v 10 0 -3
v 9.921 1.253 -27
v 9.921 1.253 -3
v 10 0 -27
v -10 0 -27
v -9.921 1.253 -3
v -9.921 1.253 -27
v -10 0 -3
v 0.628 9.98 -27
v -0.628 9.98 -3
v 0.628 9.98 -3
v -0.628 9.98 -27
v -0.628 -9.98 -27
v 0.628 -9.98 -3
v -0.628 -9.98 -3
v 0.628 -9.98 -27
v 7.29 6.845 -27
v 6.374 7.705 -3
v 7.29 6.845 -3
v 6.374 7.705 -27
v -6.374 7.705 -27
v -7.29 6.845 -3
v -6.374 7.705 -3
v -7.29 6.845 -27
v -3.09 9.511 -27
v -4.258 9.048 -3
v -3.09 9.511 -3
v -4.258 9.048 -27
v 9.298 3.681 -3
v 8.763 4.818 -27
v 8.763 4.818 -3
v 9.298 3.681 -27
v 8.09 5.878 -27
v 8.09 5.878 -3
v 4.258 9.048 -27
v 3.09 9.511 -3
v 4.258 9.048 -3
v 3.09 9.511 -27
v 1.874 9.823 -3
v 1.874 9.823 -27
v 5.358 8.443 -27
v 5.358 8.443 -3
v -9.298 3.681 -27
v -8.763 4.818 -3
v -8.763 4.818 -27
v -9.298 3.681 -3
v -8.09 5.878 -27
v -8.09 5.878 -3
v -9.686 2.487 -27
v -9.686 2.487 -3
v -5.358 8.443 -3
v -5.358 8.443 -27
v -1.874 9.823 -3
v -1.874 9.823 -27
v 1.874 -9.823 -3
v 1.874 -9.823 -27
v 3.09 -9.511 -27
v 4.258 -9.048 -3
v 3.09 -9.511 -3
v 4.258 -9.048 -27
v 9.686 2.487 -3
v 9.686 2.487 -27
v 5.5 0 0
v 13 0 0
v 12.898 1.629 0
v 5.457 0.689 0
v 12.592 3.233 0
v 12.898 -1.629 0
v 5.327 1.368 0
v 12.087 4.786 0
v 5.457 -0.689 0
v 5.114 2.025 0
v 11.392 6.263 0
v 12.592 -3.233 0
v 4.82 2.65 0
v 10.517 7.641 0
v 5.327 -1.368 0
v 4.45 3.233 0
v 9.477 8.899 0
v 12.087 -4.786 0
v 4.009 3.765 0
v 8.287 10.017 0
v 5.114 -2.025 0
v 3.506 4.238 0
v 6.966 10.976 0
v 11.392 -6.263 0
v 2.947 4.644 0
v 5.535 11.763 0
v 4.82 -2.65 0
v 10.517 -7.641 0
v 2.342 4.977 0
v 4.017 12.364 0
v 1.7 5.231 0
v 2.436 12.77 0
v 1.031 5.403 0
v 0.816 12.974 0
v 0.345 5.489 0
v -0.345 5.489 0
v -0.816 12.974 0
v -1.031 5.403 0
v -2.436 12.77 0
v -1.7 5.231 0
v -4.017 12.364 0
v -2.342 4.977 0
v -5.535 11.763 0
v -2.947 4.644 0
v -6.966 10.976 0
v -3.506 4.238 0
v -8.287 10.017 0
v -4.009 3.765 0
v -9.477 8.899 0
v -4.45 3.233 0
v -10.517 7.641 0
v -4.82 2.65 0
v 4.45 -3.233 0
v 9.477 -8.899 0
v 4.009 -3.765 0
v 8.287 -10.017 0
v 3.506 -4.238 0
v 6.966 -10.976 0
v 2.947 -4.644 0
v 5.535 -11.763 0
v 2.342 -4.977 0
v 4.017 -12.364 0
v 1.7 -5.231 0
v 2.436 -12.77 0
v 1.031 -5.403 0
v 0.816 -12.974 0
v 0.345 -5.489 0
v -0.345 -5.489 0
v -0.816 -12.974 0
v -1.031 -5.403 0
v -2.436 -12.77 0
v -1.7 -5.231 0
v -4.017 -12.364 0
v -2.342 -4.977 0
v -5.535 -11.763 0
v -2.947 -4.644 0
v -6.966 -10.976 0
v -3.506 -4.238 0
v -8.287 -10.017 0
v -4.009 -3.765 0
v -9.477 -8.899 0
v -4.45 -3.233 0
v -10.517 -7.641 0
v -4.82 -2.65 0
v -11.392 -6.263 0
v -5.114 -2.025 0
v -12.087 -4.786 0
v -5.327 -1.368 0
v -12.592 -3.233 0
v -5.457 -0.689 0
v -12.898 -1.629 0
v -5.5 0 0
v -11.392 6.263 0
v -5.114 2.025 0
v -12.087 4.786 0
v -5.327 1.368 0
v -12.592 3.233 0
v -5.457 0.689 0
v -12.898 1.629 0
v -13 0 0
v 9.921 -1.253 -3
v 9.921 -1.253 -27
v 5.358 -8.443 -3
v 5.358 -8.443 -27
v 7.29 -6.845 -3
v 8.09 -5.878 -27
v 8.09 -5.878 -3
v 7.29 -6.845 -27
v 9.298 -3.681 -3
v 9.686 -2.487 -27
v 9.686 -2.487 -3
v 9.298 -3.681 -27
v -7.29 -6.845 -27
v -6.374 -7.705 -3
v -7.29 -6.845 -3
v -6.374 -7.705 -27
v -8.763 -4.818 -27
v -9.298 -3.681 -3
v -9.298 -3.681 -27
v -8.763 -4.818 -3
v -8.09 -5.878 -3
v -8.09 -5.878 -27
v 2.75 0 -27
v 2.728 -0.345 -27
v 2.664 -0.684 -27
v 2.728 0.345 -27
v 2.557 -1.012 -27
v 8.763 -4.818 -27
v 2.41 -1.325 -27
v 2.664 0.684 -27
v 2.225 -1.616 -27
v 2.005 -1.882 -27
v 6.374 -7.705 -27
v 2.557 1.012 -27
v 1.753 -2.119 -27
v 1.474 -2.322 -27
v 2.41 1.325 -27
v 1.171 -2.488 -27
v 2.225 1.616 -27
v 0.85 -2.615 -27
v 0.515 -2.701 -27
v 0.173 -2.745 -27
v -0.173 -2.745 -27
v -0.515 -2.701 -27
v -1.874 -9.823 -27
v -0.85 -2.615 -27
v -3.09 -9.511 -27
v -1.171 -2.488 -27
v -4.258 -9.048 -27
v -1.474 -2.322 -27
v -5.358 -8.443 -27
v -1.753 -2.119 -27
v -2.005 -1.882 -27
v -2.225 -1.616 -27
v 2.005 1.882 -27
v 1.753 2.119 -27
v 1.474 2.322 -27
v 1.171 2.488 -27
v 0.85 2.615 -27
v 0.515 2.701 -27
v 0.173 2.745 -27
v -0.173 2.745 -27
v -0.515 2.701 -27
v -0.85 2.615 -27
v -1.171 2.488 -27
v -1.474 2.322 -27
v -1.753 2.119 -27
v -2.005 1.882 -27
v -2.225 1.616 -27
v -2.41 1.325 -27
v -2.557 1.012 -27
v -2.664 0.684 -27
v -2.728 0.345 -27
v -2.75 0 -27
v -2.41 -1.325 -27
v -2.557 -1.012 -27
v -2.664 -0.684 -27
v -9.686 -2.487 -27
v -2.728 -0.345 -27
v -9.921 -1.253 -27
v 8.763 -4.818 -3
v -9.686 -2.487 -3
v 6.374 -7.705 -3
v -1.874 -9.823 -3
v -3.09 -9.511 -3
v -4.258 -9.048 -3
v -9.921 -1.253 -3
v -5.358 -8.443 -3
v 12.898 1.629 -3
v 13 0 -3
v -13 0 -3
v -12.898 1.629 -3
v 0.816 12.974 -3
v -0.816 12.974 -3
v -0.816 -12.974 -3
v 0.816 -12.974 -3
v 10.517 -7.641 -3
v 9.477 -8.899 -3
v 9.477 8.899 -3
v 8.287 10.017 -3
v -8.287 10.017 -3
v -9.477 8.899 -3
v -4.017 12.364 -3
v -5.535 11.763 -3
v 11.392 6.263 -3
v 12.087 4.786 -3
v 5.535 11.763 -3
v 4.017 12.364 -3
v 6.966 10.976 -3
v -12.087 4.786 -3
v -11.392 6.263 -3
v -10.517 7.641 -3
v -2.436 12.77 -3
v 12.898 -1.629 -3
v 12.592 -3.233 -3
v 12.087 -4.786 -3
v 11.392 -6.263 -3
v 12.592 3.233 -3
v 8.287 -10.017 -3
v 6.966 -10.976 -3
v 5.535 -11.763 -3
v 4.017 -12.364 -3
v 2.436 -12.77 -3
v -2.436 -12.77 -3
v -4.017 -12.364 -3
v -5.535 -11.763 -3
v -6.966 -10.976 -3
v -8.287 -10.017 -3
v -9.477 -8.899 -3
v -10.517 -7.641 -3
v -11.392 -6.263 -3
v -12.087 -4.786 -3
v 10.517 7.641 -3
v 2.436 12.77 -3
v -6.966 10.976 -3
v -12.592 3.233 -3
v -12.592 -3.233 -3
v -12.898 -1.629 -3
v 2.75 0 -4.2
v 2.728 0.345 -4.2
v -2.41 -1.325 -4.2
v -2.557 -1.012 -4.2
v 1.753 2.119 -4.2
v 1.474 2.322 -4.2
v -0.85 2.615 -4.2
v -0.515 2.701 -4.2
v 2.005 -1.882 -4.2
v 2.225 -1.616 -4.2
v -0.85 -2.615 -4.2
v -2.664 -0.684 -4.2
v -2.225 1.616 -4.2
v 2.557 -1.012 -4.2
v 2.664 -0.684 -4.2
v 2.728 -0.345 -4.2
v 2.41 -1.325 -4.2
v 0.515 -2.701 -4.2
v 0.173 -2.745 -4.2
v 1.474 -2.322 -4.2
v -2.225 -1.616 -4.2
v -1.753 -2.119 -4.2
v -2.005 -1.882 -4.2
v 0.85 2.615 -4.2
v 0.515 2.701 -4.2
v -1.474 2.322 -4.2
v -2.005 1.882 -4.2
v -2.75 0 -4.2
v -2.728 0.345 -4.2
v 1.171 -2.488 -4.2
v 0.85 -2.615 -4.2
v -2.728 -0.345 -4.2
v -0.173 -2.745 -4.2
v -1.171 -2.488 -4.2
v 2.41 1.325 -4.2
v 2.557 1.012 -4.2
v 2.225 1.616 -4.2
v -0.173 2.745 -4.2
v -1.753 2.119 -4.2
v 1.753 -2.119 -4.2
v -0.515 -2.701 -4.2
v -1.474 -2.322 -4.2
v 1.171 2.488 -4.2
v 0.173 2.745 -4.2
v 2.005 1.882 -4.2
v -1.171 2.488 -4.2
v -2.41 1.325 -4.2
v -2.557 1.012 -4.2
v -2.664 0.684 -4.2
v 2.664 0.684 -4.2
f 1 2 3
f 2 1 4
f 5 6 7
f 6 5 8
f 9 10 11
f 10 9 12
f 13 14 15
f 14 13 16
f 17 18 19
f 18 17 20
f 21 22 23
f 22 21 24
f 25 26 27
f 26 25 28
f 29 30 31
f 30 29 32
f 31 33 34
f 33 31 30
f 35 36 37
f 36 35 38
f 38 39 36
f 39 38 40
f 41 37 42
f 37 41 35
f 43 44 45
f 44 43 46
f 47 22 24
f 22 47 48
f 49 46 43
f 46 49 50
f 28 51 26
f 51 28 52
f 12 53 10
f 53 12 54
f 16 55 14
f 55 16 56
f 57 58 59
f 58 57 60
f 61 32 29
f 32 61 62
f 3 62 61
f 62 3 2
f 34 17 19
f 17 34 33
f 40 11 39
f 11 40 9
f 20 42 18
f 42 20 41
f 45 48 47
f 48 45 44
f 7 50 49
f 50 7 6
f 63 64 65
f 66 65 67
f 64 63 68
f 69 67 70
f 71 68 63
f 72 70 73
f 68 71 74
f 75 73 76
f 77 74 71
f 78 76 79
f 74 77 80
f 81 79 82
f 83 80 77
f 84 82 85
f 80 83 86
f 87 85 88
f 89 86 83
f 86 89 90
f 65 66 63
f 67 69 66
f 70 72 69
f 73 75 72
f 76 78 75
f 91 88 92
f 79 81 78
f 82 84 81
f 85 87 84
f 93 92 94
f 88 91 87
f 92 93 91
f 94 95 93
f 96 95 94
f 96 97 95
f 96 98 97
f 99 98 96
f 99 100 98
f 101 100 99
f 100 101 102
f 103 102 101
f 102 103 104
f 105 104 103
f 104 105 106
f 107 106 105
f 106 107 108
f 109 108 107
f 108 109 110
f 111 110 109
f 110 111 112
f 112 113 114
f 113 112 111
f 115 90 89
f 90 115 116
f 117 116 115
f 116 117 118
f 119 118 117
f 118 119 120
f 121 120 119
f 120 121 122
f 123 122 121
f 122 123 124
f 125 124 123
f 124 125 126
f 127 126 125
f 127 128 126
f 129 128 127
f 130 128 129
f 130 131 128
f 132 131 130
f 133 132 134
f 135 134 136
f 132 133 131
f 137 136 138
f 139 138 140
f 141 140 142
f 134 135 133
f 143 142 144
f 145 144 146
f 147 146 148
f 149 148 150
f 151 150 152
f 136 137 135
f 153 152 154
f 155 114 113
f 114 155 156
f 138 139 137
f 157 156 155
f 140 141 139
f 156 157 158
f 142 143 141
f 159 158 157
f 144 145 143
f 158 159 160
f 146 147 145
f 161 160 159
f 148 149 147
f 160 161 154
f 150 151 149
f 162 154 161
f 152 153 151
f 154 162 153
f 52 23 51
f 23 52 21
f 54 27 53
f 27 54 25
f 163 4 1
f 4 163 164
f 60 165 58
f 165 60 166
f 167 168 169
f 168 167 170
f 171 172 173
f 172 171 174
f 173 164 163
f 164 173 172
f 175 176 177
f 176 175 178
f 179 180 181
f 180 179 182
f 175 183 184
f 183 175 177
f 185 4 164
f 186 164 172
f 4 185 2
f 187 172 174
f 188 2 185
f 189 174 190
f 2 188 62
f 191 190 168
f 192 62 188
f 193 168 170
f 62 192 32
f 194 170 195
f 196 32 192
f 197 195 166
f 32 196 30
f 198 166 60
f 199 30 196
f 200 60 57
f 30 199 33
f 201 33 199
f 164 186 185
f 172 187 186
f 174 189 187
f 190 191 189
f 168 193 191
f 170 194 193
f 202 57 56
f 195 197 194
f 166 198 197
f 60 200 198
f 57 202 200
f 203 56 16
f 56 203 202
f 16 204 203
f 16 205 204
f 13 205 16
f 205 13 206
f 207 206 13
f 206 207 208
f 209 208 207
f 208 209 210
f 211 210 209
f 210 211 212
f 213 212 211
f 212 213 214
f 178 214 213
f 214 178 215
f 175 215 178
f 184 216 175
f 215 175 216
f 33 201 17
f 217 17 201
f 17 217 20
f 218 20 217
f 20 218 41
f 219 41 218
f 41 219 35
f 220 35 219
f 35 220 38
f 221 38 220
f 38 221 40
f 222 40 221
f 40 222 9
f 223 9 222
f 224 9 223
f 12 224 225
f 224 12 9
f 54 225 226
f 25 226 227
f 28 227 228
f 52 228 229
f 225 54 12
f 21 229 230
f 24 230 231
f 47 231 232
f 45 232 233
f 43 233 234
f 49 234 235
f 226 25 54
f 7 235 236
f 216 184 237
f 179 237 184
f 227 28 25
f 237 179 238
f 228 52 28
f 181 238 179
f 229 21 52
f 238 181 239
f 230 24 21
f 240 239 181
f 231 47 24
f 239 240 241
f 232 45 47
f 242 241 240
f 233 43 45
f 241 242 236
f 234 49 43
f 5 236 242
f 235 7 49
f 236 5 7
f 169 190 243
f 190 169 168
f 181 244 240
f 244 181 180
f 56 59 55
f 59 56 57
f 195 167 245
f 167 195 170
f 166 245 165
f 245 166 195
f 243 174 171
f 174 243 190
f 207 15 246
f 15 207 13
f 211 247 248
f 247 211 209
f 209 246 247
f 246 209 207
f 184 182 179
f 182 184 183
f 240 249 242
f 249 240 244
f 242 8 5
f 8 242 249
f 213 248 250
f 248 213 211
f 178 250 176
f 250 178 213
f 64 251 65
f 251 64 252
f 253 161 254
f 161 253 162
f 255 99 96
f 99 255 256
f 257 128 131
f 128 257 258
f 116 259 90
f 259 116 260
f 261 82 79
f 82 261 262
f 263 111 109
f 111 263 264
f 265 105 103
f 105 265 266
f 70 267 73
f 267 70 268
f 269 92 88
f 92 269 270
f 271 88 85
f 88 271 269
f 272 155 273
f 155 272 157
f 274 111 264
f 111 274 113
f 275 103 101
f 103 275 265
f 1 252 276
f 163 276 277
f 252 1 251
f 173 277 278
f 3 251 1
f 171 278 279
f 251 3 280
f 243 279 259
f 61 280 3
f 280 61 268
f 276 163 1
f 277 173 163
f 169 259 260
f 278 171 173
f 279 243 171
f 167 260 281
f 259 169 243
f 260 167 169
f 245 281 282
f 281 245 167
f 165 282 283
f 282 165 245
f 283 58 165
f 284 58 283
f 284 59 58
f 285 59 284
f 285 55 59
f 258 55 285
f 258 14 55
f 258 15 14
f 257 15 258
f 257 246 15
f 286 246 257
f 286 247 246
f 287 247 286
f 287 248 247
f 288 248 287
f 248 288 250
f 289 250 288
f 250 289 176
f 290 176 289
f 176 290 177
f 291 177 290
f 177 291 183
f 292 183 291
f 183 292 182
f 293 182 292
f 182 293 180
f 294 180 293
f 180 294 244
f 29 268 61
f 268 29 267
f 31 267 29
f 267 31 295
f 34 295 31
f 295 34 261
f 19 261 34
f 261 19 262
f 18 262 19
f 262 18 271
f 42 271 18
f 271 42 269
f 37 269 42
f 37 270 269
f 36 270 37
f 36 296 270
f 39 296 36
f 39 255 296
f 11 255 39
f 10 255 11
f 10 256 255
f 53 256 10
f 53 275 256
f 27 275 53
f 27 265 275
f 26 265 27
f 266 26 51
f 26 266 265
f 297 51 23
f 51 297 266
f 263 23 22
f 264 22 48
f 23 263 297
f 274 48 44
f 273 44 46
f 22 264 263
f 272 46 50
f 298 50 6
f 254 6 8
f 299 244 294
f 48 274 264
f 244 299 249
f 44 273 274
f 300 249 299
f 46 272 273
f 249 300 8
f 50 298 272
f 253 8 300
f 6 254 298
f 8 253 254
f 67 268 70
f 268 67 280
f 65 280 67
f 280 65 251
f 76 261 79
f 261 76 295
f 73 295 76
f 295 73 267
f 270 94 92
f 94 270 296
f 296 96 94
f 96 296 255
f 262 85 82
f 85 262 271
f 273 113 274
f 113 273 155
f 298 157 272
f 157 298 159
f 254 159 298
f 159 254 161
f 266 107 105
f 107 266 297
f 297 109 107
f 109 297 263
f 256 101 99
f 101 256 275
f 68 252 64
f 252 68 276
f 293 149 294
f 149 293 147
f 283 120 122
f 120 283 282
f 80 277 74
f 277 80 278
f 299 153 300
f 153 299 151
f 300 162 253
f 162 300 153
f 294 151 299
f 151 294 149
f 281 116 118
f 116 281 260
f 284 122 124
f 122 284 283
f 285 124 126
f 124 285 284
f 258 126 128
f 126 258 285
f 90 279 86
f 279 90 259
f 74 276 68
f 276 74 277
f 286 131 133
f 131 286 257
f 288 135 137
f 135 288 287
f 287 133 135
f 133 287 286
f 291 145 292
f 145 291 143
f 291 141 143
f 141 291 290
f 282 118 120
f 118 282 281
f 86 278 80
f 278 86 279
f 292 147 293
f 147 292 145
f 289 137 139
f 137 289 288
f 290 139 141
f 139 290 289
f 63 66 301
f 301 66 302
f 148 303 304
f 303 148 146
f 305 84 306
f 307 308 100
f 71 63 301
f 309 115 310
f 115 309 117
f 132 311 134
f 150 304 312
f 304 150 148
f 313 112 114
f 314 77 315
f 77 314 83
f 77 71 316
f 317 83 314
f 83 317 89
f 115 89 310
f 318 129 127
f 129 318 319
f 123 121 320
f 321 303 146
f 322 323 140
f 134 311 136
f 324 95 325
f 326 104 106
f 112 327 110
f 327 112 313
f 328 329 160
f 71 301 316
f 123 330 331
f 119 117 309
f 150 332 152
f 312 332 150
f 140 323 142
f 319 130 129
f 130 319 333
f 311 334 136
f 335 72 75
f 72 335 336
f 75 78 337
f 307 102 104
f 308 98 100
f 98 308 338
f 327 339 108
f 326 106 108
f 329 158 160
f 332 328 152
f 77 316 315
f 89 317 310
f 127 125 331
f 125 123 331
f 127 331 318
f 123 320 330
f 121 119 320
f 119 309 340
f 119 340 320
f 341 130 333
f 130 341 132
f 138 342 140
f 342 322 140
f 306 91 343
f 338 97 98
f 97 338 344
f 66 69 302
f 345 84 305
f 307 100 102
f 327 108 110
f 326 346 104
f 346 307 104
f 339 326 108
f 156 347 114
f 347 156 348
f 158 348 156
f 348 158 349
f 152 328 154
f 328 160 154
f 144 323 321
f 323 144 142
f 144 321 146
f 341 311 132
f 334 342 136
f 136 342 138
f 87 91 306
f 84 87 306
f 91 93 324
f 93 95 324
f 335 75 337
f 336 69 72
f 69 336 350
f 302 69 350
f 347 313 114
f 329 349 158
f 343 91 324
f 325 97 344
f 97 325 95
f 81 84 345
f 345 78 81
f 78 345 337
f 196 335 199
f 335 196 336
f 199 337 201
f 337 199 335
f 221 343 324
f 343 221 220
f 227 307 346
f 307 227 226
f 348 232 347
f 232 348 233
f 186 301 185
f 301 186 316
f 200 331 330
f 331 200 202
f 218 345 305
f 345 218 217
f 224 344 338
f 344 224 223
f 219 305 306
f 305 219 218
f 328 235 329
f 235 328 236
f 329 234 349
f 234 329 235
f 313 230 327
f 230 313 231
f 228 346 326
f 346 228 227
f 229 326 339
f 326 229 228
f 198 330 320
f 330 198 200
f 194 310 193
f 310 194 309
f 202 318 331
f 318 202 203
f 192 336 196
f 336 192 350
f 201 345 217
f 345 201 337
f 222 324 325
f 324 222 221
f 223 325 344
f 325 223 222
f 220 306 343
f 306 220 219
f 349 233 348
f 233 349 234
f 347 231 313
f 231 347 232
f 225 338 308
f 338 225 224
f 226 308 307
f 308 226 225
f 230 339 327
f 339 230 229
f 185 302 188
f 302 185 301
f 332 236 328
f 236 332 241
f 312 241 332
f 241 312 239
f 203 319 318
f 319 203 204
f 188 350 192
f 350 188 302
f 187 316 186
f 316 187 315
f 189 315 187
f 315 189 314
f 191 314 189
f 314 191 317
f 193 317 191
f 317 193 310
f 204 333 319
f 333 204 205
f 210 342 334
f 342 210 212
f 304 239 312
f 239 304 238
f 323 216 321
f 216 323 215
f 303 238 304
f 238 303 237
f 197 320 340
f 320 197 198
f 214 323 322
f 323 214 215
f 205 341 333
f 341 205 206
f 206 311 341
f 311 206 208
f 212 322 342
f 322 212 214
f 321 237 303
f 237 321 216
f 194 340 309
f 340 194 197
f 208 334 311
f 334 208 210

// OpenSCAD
$fn = 50;


difference() {
	union() {
		translate(v = [0, 0, -27.0000000000]) {
			cylinder(h = 27, r = 10.0000000000);
		}
		translate(v = [0, 0, -3.0000000000]) {
			cylinder(h = 3, r = 13.0000000000);
		}
	}
	union() {
		translate(v = [0, 0, 0]) {
			rotate(a = [0, 0, 0]) {
				difference() {
					union() {
						#translate(v = [0, 0, -27.0000000000]) {
							cylinder(h = 27, r = 2.2500000000);
						}
						#translate(v = [0, 0, -4.2000000000]) {
							cylinder(h = 4.2000000000, r1 = 2.7500000000, r2 = 5.5000000000);
						}
						#translate(v = [0, 0, -27.0000000000]) {
							cylinder(h = 27, r = 2.7500000000);
						}
						#translate(v = [0, 0, -27.0000000000]) {
							cylinder(h = 27, r = 2.2500000000);
						}
					}
					union();
				}
			}
		}
	}
}
